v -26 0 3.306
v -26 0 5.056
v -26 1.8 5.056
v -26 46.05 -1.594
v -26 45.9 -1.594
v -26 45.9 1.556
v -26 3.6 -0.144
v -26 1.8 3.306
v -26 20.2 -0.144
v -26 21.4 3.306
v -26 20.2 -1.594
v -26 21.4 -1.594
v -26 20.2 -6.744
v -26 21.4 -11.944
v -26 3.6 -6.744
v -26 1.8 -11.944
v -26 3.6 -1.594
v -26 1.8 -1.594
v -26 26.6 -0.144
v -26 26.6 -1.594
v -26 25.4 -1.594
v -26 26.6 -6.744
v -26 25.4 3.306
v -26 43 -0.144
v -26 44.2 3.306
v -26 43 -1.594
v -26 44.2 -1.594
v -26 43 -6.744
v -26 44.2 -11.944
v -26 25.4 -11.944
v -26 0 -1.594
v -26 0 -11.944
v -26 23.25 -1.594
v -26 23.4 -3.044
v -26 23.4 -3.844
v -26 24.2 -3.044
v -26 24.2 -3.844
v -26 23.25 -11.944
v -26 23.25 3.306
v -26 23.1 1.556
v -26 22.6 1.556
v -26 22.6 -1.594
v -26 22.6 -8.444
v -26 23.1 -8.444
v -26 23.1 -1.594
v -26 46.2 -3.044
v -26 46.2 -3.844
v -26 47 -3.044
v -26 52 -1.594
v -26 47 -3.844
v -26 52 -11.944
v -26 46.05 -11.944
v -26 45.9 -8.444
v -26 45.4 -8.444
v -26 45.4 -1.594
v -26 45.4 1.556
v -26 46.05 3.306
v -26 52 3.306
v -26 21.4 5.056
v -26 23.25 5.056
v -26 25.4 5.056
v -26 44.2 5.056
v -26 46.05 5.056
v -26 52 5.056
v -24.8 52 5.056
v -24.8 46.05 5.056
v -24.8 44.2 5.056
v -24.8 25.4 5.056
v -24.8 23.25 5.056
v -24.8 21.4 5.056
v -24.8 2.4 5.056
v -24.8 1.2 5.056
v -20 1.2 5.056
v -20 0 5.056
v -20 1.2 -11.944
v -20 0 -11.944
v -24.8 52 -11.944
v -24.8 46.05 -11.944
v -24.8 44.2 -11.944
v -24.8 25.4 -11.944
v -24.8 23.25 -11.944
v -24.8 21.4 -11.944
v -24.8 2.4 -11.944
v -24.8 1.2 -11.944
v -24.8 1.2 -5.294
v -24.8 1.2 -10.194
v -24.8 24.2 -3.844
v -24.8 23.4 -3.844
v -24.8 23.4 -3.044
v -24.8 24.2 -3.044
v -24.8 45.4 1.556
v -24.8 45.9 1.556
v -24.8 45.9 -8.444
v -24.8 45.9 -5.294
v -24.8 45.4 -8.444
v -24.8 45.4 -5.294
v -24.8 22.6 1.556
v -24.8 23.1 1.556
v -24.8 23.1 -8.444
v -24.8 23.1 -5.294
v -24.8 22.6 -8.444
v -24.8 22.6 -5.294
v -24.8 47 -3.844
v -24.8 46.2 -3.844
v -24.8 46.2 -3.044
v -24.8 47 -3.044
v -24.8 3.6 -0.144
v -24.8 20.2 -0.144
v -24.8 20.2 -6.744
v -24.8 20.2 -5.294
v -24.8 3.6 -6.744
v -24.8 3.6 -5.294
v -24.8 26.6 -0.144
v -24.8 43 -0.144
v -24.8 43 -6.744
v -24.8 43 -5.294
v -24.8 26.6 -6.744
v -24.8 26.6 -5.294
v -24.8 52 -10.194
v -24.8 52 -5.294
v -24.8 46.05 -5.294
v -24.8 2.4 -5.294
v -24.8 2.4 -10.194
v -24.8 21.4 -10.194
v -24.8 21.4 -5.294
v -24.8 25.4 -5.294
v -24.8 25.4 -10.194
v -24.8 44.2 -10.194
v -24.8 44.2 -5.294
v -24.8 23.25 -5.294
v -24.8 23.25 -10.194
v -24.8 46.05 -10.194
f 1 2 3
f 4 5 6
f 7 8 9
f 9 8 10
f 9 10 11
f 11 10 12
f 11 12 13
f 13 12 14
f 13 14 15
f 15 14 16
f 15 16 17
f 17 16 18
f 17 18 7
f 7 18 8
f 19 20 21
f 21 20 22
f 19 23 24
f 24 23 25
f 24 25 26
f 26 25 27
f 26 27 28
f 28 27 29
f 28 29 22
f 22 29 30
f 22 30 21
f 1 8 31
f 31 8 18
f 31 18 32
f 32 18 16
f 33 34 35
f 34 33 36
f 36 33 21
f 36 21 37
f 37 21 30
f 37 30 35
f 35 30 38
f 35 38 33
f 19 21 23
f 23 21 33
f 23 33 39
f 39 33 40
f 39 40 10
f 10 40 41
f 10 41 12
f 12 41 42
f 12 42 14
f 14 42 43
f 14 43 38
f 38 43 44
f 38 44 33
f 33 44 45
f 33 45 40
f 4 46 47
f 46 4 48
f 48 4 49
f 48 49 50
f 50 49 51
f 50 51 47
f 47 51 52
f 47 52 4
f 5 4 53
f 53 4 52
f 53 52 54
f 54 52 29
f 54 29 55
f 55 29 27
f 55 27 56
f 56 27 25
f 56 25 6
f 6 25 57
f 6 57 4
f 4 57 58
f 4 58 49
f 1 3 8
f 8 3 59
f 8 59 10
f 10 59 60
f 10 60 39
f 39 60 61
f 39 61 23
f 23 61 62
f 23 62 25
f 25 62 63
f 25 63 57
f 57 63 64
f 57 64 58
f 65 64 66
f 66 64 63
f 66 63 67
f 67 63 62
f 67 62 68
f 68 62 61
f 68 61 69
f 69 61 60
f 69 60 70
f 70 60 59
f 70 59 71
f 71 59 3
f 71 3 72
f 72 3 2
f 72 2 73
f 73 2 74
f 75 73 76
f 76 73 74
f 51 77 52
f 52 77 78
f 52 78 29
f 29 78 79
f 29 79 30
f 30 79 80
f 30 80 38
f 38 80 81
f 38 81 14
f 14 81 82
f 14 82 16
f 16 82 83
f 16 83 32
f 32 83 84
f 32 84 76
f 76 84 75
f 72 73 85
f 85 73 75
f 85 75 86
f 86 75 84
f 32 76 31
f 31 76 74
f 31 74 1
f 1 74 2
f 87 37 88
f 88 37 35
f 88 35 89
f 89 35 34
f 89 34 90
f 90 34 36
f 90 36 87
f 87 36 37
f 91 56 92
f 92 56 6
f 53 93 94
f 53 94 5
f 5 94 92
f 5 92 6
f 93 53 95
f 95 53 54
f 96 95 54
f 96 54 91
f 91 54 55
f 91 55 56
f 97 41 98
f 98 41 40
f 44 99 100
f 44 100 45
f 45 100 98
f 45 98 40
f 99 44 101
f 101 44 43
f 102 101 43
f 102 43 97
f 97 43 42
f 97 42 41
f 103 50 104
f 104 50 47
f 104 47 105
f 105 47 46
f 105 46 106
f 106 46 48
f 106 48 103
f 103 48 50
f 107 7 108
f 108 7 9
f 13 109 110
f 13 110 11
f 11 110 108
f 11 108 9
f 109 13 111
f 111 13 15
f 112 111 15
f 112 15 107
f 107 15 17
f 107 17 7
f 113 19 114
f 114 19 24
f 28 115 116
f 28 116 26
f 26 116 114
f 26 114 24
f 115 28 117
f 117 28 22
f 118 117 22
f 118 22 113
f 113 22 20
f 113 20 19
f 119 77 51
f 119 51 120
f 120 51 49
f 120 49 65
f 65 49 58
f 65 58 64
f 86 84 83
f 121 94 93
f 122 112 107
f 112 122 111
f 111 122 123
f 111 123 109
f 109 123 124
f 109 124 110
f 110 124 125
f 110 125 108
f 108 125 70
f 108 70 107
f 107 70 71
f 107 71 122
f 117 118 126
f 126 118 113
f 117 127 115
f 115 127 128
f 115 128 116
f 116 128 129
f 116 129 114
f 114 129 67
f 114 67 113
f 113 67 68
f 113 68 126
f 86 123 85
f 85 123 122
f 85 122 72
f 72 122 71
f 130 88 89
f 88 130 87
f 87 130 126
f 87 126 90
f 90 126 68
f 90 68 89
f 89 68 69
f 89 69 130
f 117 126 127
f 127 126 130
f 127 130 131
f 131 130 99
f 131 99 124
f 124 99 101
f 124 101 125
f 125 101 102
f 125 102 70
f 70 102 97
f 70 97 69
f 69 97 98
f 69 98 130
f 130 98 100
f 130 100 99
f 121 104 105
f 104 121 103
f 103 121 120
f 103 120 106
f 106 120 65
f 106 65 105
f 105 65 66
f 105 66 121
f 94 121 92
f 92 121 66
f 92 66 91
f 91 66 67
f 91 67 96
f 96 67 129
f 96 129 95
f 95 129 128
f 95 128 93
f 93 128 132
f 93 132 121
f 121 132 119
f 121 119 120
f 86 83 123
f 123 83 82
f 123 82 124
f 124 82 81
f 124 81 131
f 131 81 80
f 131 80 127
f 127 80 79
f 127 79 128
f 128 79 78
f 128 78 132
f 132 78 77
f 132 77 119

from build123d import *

# Parameters (mm, degrees)
SKETCH1_W           = 6
SKETCH1_H           = 17
BOSS_EXTRUDE1_DEPTH = 1.2
SKETCH2_W           = 2
SKETCH2_H           = 17
BOSS_EXTRUDE2_DEPTH = 68
CUT_EXTRUDE1_REACH  = 72.337
SKETCH3_W           = 0.8
SKETCH3_H           = 0.8
SKETCH3_W_2         = 10
SKETCH3_H_2         = 0.5
CUT_EXTRUDE3_REACH  = 72.337
SKETCH4_W           = 17
SKETCH4_H           = 17.2
SKETCH4_W_2         = 6.6
SKETCH4_H_2         = 16.4
SKETCH4_H_3         = 16.6
CUT_EXTRUDE4_REACH  = 61.352
SKETCH5_W           = 0.8
SKETCH5_H           = 17


with BuildPart() as part:
    # Sketch1 → Boss-Extrude1 (new body)
    with BuildSketch(Plane(origin=(0, 0, 0), x_dir=(1, 0, 0), z_dir=(0, 1, 0))):
        with Locations((-23, 3.444444444)):
            Rectangle(SKETCH1_W, SKETCH1_H)
    extrude(amount=BOSS_EXTRUDE1_DEPTH)

    # Sketch2 → Boss-Extrude2 (add)
    with BuildSketch(Plane(origin=(0, 1.2, 0), x_dir=(1, 0, 0), z_dir=(0, 1, 0))):
        with Locations((-25, 3.444444444)):
            Rectangle(SKETCH2_W, SKETCH2_H)
    extrude(amount=BOSS_EXTRUDE2_DEPTH)

    # Sketch3 → Cut-Extrude1 (cut, up to next)
    with BuildSketch(Plane(origin=(-24, 0, 0), x_dir=(0, 0, -1), z_dir=(1, 0, 0)), mode=Mode.PRIVATE) as cut_extrude1_sk1:
        with Locations((3.444444444, 23.8)):
            Rectangle(SKETCH3_W, SKETCH3_H)
    cut_extrude1_tool1 = extrude(cut_extrude1_sk1.sketch, amount=-CUT_EXTRUDE1_REACH, mode=Mode.PRIVATE) & part.part
    # Sketch3 → Cut-Extrude1 (cut, up to next)
    with BuildSketch(Plane(origin=(-24, 0, 0), x_dir=(0, 0, -1), z_dir=(1, 0, 0)), mode=Mode.PRIVATE) as cut_extrude1_sk2:
        with Locations((3.444444444, 46.6)):
            Rectangle(SKETCH3_W, SKETCH3_H)
    cut_extrude1_tool2 = extrude(cut_extrude1_sk2.sketch, amount=-CUT_EXTRUDE1_REACH, mode=Mode.PRIVATE) & part.part
    # Sketch3 → Cut-Extrude1 (cut, up to next)
    with BuildSketch(Plane(origin=(-24, 0, 0), x_dir=(0, 0, -1), z_dir=(1, 0, 0)), mode=Mode.PRIVATE) as cut_extrude1_sk3:
        with Locations((3.444444444, 22.85)):
            Rectangle(SKETCH3_W_2, SKETCH3_H_2)
    cut_extrude1_tool3 = extrude(cut_extrude1_sk3.sketch, amount=-CUT_EXTRUDE1_REACH, mode=Mode.PRIVATE) & part.part
    # Sketch3 → Cut-Extrude1 (cut, up to next)
    with BuildSketch(Plane(origin=(-24, 0, 0), x_dir=(0, 0, -1), z_dir=(1, 0, 0)), mode=Mode.PRIVATE) as cut_extrude1_sk4:
        with Locations((3.444444444, 45.65)):
            Rectangle(SKETCH3_W_2, SKETCH3_H_2)
    cut_extrude1_tool4 = extrude(cut_extrude1_sk4.sketch, amount=-CUT_EXTRUDE1_REACH, mode=Mode.PRIVATE) & part.part
    add(cut_extrude1_tool1.solids().sort_by_distance((-24, 23.8, -3.444444))[0], mode=Mode.SUBTRACT)
    add(cut_extrude1_tool2.solids().sort_by_distance((-24, 46.6, -3.444444))[0], mode=Mode.SUBTRACT)
    add(cut_extrude1_tool3.solids().sort_by_distance((-24, 22.85, -3.444444))[0], mode=Mode.SUBTRACT)
    add(cut_extrude1_tool4.solids().sort_by_distance((-24, 45.65, -3.444444))[0], mode=Mode.SUBTRACT)

    # Sketch4 → Cut-Extrude3 (cut, up to next)
    with BuildSketch(Plane(origin=(-24, 0, 0), x_dir=(0, 0, -1), z_dir=(1, 0, 0)), mode=Mode.PRIVATE) as cut_extrude3_sk1:
        with Locations((3.444444444, 60.6)):
            Rectangle(SKETCH4_W, SKETCH4_H)
    cut_extrude3_tool1 = extrude(cut_extrude3_sk1.sketch, amount=-CUT_EXTRUDE3_REACH, mode=Mode.PRIVATE) & part.part
    # Sketch4 → Cut-Extrude3 (cut, up to next)
    with BuildSketch(Plane(origin=(-24, 0, 0), x_dir=(0, 0, -1), z_dir=(1, 0, 0)), mode=Mode.PRIVATE) as cut_extrude3_sk2:
        with Locations((3.444444444, 34.8)):
            Rectangle(SKETCH4_W_2, SKETCH4_H_2)
    cut_extrude3_tool2 = extrude(cut_extrude3_sk2.sketch, amount=-CUT_EXTRUDE3_REACH, mode=Mode.PRIVATE) & part.part
    # Sketch4 → Cut-Extrude3 (cut, up to next)
    with BuildSketch(Plane(origin=(-24, 0, 0), x_dir=(0, 0, -1), z_dir=(1, 0, 0)), mode=Mode.PRIVATE) as cut_extrude3_sk3:
        with Locations((3.444444444, 11.9)):
            Rectangle(SKETCH4_W_2, SKETCH4_H_3)
    cut_extrude3_tool3 = extrude(cut_extrude3_sk3.sketch, amount=-CUT_EXTRUDE3_REACH, mode=Mode.PRIVATE) & part.part
    add(cut_extrude3_tool1.solids().sort_by_distance((-24, 60.6, -3.444444))[0], mode=Mode.SUBTRACT)
    add(cut_extrude3_tool2.solids().sort_by_distance((-24, 34.8, -3.444444))[0], mode=Mode.SUBTRACT)
    add(cut_extrude3_tool3.solids().sort_by_distance((-24, 11.9, -3.444444))[0], mode=Mode.SUBTRACT)

    # Cut-Extrude4: up to this face of the body (flat: up to its plane)
    cut_extrude4_end = Plane(part.part.faces().sort_by_distance((-22, 1.2, -3.444444444))[0])
    # Sketch5 → Cut-Extrude4 (cut, up to the picked face)
    with BuildSketch(Plane(origin=(0, 52, 0), x_dir=(1, 0, 0), z_dir=(0, 1, 0)), mode=Mode.PRIVATE) as cut_extrude4_sk1:
        with Locations((-24.4, 3.444444444)):
            Rectangle(SKETCH5_W, SKETCH5_H)
    cut_extrude4_tool1 = split(extrude(cut_extrude4_sk1.sketch, amount=-CUT_EXTRUDE4_REACH, mode=Mode.PRIVATE), bisect_by=cut_extrude4_end, keep=Keep.BOTH, mode=Mode.PRIVATE)
    add(cut_extrude4_tool1.solids().sort_by(Axis((-24.4, 52, -3.444444), (0, -1, 0)))[0], mode=Mode.SUBTRACT)


solid = part.part
